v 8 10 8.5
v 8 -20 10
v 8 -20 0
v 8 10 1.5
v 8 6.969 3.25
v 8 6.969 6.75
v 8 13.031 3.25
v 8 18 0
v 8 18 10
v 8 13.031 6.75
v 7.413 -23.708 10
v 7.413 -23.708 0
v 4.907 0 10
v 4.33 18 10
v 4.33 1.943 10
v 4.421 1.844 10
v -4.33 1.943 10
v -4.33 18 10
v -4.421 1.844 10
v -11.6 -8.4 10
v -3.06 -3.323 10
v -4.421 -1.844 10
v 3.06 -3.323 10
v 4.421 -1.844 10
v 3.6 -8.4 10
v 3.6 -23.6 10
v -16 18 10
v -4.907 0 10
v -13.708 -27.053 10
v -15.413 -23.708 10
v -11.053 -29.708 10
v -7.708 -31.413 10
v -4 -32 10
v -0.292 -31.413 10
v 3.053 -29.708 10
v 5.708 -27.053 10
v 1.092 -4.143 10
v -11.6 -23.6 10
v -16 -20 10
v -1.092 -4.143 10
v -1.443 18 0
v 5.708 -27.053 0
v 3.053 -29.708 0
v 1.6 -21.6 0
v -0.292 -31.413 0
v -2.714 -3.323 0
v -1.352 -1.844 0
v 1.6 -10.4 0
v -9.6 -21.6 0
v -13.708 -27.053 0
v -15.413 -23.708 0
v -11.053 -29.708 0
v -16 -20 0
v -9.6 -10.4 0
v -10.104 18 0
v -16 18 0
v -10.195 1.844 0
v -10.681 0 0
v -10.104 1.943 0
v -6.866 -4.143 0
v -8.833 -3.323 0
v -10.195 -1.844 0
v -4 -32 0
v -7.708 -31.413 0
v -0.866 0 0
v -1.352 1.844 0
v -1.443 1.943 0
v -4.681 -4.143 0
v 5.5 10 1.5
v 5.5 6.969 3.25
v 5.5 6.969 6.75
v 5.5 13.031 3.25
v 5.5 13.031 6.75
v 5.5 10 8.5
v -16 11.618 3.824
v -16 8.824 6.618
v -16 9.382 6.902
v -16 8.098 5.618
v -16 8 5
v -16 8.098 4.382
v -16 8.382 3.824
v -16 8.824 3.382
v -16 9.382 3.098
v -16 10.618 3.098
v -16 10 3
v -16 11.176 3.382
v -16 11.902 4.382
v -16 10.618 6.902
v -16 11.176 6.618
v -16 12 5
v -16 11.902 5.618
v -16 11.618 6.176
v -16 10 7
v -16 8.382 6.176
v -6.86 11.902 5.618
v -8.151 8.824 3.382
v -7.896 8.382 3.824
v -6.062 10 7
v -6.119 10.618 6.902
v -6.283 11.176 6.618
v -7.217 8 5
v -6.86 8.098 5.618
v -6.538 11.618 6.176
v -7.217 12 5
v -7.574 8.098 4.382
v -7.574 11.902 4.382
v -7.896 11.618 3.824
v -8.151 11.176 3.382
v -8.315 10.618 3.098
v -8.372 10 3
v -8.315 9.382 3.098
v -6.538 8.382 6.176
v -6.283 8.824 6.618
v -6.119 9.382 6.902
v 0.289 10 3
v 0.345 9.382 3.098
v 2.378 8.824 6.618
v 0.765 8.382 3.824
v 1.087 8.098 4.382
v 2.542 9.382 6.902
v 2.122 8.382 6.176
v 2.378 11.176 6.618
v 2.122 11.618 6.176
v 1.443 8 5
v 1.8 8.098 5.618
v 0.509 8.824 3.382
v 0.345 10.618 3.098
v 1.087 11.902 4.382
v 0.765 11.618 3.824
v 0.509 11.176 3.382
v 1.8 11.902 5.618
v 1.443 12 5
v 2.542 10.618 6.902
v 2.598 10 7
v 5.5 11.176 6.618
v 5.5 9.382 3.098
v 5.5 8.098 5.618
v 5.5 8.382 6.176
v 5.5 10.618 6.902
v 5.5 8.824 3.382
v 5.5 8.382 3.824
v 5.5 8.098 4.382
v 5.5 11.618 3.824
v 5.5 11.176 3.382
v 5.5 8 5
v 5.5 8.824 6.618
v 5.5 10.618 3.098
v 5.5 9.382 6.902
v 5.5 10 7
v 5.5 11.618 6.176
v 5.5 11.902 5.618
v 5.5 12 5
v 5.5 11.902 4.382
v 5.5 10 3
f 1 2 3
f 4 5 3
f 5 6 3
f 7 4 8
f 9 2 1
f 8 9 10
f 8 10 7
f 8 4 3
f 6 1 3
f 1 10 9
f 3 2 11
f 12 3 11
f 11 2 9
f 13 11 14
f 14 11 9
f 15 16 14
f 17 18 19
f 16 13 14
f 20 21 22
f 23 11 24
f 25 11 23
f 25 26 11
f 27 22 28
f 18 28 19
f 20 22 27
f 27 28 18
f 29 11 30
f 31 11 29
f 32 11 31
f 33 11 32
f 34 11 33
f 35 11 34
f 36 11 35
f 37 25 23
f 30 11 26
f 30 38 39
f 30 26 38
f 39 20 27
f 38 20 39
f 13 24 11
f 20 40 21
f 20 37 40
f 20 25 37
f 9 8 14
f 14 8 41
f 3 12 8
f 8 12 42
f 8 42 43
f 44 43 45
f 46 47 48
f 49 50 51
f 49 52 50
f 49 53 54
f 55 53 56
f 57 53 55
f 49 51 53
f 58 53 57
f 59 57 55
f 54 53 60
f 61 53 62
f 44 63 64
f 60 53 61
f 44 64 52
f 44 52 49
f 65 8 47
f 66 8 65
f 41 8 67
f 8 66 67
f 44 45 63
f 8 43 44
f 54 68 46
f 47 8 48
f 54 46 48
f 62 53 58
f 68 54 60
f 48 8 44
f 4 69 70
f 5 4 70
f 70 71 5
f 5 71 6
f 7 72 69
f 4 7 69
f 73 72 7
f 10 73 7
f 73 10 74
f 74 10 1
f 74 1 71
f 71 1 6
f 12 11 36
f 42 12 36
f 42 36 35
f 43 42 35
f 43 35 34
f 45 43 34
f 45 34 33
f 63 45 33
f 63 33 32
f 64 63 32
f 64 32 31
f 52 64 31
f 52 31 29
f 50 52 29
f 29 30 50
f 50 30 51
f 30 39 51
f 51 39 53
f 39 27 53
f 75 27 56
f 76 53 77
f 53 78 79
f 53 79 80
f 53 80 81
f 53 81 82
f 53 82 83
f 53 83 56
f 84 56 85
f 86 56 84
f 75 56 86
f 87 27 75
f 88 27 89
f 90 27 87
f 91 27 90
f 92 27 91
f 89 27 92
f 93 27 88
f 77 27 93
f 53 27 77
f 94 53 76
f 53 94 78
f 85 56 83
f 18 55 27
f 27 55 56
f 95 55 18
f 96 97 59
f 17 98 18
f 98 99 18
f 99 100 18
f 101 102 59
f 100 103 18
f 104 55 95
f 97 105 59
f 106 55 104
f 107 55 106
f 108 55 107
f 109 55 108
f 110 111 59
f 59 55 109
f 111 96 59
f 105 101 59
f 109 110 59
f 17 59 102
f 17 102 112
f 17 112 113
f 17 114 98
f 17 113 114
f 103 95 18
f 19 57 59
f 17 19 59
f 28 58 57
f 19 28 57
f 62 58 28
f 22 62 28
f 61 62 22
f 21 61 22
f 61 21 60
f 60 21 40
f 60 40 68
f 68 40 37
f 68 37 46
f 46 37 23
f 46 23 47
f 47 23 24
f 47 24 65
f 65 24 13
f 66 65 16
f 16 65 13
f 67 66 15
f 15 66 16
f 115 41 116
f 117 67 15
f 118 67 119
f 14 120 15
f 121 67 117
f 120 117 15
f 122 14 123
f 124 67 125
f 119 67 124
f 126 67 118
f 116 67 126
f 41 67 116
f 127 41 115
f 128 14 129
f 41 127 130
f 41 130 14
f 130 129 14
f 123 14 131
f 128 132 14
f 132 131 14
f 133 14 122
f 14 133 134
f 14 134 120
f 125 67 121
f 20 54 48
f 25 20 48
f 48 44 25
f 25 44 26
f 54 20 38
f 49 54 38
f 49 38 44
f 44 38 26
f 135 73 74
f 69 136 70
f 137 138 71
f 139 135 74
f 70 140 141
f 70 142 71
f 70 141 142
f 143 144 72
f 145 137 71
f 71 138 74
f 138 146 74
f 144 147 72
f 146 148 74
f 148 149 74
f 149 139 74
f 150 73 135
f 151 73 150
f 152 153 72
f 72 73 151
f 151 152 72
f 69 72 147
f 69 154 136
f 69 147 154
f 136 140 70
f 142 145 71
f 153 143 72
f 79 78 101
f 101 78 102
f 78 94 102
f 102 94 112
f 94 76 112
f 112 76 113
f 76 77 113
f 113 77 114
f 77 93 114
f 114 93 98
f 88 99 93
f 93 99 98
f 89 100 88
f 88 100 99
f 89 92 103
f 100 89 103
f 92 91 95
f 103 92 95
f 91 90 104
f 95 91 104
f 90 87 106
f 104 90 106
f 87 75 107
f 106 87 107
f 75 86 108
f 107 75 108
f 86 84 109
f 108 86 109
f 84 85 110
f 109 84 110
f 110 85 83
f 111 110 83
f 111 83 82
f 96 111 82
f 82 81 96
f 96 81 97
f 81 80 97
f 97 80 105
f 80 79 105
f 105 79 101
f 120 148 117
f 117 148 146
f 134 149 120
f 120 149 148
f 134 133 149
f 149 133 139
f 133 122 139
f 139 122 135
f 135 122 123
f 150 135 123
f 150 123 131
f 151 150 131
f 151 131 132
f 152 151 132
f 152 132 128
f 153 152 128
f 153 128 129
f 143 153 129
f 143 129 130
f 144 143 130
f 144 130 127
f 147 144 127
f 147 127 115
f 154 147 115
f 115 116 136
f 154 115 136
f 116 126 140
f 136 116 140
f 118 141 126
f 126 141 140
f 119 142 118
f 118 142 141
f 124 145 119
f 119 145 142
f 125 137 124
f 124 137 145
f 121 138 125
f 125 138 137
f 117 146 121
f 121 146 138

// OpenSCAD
// nischi prusa lamp holder


screwhole = 4; 		//for 3mm screw, to mount opto stop
nuttrap=7; 			//hole for nut - 3mm nut measured, thickness 2.5 
gap_width = 10;

body_width=24; 	//rod end
body_height=10; 	//rod end
screw_elevation = body_height/2; // set at half of body_height 

translate([0,0,body_height ]) rotate([0,-180,0]) tool_holder();

module tool_holder()
{
  difference()
  {
    union()
    {
  	translate([-8,-20,0 ]) cube([body_width,38,body_height]);  
	translate([4,-20,0 ]) cylinder(body_height, r=body_width/2,$fn=20);
    }

    union()
    {
       rotate([0,30,0]) cutting();  // schraubenbohrung

       translate([4,-16, -2 ]) rotate([0,0,0]) pinzette();

        // round big 
        // translate([4,-20,-1]) cylinder(h = body_height+2, r1=3, r2=3 ,$fn = 50);	
        // translate([4,-20,-1]) cylinder(h = body_height/3*2, r1=9, r2=4 ,$fn = 50);	

	  //screw to hold to rod
	  translate([0,10,screw_elevation]) rotate([0,90,0]) 
		cylinder(40,screwhole/2, screwhole/2, $fn=20,center=true); //screw hole
	  translate([-8,10,screw_elevation]) rotate([0,90,0]) 
		cylinder(5,nuttrap/2,nuttrap/2, $fn=6,center=true); //nut trap
    }
  }
}

module pinzette()
{
   polyhedron(
      points=[ [8,8,0],[8,-8,0],[-8,-8,0],[-8,8,0], // the four points at base
                  [0,0,40]  ],                                 // the apex point 
      triangles=[ [0,1,4],[1,2,4],[2,3,4],[3,0,4],          // each triangle side
                     [1,0,3],[2,1,3] ]                         // two triangles for square base
   );
}

module cutting()
{
	translate([0,     0, -5 ]) cylinder((body_height+20),4.25,4.25);  // for 8mm threaded rod
	translate([-3.75,0, -5 ]) cube([7.5,25,(body_height+20)]);   // long slot 
}
